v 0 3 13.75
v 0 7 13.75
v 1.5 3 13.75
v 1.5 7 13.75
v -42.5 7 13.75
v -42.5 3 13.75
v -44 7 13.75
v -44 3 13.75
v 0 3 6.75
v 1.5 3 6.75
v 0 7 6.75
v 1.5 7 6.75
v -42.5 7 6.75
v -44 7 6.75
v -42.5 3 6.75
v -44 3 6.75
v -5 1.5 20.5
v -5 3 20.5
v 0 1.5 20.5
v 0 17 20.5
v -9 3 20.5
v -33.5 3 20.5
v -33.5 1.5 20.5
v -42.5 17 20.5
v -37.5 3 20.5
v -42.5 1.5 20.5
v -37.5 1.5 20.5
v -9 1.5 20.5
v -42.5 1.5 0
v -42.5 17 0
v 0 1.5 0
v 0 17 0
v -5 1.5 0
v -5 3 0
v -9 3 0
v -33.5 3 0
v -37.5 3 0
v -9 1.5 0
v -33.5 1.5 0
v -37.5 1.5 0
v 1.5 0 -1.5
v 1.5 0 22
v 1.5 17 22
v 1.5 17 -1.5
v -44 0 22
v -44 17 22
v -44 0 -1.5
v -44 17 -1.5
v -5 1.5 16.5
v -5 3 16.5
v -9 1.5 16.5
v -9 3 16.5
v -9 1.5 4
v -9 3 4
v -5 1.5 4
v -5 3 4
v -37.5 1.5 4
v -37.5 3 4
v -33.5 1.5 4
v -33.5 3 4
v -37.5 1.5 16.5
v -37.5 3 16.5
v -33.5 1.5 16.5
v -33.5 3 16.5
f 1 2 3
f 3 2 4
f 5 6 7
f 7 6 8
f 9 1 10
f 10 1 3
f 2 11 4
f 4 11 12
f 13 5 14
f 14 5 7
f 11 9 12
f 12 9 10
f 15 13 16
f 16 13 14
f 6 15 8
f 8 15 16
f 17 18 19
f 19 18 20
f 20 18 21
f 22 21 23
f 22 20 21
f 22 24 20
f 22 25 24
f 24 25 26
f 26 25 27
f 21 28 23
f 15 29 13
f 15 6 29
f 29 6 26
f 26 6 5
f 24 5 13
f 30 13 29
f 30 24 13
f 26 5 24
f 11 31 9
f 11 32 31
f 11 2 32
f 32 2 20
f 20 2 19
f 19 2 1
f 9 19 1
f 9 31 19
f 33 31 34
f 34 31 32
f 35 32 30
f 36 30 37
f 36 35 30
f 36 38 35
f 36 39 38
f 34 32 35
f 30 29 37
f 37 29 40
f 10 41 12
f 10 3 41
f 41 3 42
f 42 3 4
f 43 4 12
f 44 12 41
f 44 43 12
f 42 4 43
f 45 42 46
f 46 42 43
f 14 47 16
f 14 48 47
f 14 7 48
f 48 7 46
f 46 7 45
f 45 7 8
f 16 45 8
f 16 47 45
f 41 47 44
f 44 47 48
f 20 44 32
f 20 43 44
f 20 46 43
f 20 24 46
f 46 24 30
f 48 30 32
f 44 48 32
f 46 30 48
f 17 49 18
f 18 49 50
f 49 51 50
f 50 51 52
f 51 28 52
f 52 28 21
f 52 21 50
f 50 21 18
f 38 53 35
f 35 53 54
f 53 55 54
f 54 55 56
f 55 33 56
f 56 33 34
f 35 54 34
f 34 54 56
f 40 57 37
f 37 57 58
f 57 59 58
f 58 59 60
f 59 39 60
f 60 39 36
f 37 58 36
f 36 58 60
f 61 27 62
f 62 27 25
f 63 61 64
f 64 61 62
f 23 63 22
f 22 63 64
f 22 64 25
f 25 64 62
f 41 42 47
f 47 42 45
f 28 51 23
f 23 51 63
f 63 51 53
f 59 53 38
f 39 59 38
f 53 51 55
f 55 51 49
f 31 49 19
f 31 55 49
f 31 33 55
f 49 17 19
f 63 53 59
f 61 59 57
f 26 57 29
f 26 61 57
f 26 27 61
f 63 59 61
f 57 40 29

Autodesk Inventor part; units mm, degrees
ref_plane "YZ Plane" through (0, 0, 0) normal (1, 0, 0) x (0, 1, 0)
ref_plane "XZ Plane" through (0, 0, 0) normal (0, 1, 0) x (-1, 0, 0)
ref_plane "XY Plane" through (0, 0, 0) normal (0, 0, 1) x (1, 0, 0)
sketch "Szkic1" plane through (0, 0, 0) normal (0, 1, 0) x (-1, 0, 0)
  line L0 (0, 0) -> (42.5, 0)
  line L1 (42.5, 0) -> (42.5, 20.5)
  line L2 (42.5, 20.5) -> (0, 20.5)
  line L3 (0, 20.5) -> (0, 0)
  line L4 (42.5, 20.5) -> (44, 20.5) construction
  line L5 (44, 20.5) -> (44, 22) construction
  line L6 (44, 22) -> (-1.5, 22)
  line L7 (-1.5, 22) -> (-1.5, -1.5)
  line L8 (-1.5, -1.5) -> (44, -1.5)
  line L9 (44, -1.5) -> (44, 22)
  line L10 (42.5, 20.5) -> (37.5, 20.5) construction
  line L11 (0, 20.5) -> (5, 20.5) construction
  line L12 (37.5, 20.5) -> (33.5, 20.5)
  line L13 (33.5, 20.5) -> (33.5, 16.5)
  line L14 (33.5, 16.5) -> (37.5, 16.5)
  line L15 (37.5, 16.5) -> (37.5, 20.5)
  line L16 (5, 20.5) -> (9, 20.5)
  line L17 (9, 20.5) -> (9, 16.5)
  line L18 (9, 16.5) -> (5, 16.5)
  line L19 (5, 16.5) -> (5, 20.5)
  line L20 (37.5, 0) -> (33.5, 0)
  line L21 (33.5, 0) -> (33.5, 4)
  line L22 (33.5, 4) -> (37.5, 4)
  line L23 (37.5, 4) -> (37.5, 0)
  line L24 (5, 0) -> (9, 0)
  line L25 (9, 0) -> (9, 4)
  line L26 (9, 4) -> (5, 4)
  line L27 (5, 4) -> (5, 0)
  dimension "d0" = 42.5
  dimension "d1" = 20.5
  dimension "d2" = 1.5
  dimension "d3" = 1.5
  dimension "d4" = 45.5
  dimension "d5" = 23.5
  dimension "d6" = 5
  dimension "d7" = 5
  dimension "d8" = 4
  dimension "d9" = 4
  dimension "d10" = 4
  dimension "d11" = 4
  dimension "d12" = 4
  dimension "d13" = 4
  dimension "d14" = 4
  dimension "d15" = 4
extrude "Wyciągnięcie proste1" add sketch "Szkic1" along normal blind 1.5 contours L3 L2 L19 L18 L17 L13 L14 L15 L1 L0 L23 L22 L21 L25 L26 L27
sketch "Szkic2" plane through (0, 0, 0) normal (0, -1, 0) x (1, 0, 0)
  line L0 (-5, 4) -> (-5, 0) projected
  line L1 (-5, 0) -> (-9, 0)
  line L2 (-9, 0) -> (-9, 4)
  line L3 (-9, 4) -> (-5, 4)
  line L4 (-5, 4) -> (-5, 0)
  line L5 (-33.5, 0) -> (-33.5, 4) projected
  line L6 (-33.5, 0) -> (-37.5, 0)
  line L7 (-37.5, 0) -> (-37.5, 4)
  line L8 (-37.5, 4) -> (-33.5, 4)
  line L9 (-33.5, 4) -> (-33.5, 0)
  line L10 (-37.5, 20.5) -> (-37.5, 16.5) projected
  line L11 (-33.5, 16.5) -> (-37.5, 16.5)
  line L12 (-37.5, 16.5) -> (-37.5, 20.5)
  line L13 (-37.5, 20.5) -> (-33.5, 20.5)
  line L14 (-33.5, 20.5) -> (-33.5, 16.5)
  line L15 (-5, 16.5) -> (-5, 20.5) projected
  line L16 (-33.5, 20.5) -> (-9, 20.5) projected
  line L17 (-5, 16.5) -> (-9, 16.5)
  line L18 (-9, 16.5) -> (-9, 20.5)
  line L19 (-9, 20.5) -> (-5, 20.5)
  line L20 (-5, 20.5) -> (-5, 16.5)
  point P0 (0, 0)
extrude "Wyciągnięcie proste2" add sketch "Szkic2" against normal blind 3
sketch "Szkic3" plane through (0, 0, 0) normal (0, -1, 0) x (1, 0, 0)
  line L0 (-42.5, 0) -> (-42.5, -1.5) construction
  line L1 (-42.5, -1.5) -> (-44, -1.5) construction
  line L2 (-44, -1.5) -> (1.5, -1.5)
  line L3 (1.5, -1.5) -> (1.5, 22)
  line L4 (1.5, 22) -> (-44, 22)
  line L5 (-44, 22) -> (-44, -1.5)
  line L6 (-42.5, 0) -> (0, 0)
  line L7 (0, 0) -> (0, 20.5)
  line L8 (0, 20.5) -> (-42.5, 20.5)
  line L9 (-42.5, 20.5) -> (-42.5, 0)
  dimension "d20" = 1.5
  dimension "d21" = 1.5
  dimension "d22" = 45.5
  dimension "d23" = 23.5
extrude "Wyciągnięcie proste3" add sketch "Szkic3" against normal blind 17
sketch "Szkic4" plane through (-44, 0, -1.5) normal (-1, 0, 0) x (0, 0, 1)
  line L0 (23.5, 0) -> (0, 0) construction
  line L1 (0, 0) -> (11.75, 0) construction
  line L2 (11.75, 0) -> (11.75, 3) construction
  line L3 (11.75, 3) -> (15.25, 3) construction
  line L4 (15.25, 3) -> (15.25, 7) construction
  line L5 (15.25, 7) -> (8.25, 7)
  line L6 (8.25, 7) -> (8.25, 3)
  line L7 (8.25, 3) -> (15.25, 3)
  line L8 (15.25, 3) -> (15.25, 7)
  point P0 (1.5, 0)
  dimension "d26" = 3
  dimension "d27" = 3.5
  dimension "d28" = 4
  dimension "d29" = 7
  dimension "d30" = 4
extrude "Wyciągnięcie proste4" cut sketch "Szkic4" against normal blind 50
properties part number "dol"
